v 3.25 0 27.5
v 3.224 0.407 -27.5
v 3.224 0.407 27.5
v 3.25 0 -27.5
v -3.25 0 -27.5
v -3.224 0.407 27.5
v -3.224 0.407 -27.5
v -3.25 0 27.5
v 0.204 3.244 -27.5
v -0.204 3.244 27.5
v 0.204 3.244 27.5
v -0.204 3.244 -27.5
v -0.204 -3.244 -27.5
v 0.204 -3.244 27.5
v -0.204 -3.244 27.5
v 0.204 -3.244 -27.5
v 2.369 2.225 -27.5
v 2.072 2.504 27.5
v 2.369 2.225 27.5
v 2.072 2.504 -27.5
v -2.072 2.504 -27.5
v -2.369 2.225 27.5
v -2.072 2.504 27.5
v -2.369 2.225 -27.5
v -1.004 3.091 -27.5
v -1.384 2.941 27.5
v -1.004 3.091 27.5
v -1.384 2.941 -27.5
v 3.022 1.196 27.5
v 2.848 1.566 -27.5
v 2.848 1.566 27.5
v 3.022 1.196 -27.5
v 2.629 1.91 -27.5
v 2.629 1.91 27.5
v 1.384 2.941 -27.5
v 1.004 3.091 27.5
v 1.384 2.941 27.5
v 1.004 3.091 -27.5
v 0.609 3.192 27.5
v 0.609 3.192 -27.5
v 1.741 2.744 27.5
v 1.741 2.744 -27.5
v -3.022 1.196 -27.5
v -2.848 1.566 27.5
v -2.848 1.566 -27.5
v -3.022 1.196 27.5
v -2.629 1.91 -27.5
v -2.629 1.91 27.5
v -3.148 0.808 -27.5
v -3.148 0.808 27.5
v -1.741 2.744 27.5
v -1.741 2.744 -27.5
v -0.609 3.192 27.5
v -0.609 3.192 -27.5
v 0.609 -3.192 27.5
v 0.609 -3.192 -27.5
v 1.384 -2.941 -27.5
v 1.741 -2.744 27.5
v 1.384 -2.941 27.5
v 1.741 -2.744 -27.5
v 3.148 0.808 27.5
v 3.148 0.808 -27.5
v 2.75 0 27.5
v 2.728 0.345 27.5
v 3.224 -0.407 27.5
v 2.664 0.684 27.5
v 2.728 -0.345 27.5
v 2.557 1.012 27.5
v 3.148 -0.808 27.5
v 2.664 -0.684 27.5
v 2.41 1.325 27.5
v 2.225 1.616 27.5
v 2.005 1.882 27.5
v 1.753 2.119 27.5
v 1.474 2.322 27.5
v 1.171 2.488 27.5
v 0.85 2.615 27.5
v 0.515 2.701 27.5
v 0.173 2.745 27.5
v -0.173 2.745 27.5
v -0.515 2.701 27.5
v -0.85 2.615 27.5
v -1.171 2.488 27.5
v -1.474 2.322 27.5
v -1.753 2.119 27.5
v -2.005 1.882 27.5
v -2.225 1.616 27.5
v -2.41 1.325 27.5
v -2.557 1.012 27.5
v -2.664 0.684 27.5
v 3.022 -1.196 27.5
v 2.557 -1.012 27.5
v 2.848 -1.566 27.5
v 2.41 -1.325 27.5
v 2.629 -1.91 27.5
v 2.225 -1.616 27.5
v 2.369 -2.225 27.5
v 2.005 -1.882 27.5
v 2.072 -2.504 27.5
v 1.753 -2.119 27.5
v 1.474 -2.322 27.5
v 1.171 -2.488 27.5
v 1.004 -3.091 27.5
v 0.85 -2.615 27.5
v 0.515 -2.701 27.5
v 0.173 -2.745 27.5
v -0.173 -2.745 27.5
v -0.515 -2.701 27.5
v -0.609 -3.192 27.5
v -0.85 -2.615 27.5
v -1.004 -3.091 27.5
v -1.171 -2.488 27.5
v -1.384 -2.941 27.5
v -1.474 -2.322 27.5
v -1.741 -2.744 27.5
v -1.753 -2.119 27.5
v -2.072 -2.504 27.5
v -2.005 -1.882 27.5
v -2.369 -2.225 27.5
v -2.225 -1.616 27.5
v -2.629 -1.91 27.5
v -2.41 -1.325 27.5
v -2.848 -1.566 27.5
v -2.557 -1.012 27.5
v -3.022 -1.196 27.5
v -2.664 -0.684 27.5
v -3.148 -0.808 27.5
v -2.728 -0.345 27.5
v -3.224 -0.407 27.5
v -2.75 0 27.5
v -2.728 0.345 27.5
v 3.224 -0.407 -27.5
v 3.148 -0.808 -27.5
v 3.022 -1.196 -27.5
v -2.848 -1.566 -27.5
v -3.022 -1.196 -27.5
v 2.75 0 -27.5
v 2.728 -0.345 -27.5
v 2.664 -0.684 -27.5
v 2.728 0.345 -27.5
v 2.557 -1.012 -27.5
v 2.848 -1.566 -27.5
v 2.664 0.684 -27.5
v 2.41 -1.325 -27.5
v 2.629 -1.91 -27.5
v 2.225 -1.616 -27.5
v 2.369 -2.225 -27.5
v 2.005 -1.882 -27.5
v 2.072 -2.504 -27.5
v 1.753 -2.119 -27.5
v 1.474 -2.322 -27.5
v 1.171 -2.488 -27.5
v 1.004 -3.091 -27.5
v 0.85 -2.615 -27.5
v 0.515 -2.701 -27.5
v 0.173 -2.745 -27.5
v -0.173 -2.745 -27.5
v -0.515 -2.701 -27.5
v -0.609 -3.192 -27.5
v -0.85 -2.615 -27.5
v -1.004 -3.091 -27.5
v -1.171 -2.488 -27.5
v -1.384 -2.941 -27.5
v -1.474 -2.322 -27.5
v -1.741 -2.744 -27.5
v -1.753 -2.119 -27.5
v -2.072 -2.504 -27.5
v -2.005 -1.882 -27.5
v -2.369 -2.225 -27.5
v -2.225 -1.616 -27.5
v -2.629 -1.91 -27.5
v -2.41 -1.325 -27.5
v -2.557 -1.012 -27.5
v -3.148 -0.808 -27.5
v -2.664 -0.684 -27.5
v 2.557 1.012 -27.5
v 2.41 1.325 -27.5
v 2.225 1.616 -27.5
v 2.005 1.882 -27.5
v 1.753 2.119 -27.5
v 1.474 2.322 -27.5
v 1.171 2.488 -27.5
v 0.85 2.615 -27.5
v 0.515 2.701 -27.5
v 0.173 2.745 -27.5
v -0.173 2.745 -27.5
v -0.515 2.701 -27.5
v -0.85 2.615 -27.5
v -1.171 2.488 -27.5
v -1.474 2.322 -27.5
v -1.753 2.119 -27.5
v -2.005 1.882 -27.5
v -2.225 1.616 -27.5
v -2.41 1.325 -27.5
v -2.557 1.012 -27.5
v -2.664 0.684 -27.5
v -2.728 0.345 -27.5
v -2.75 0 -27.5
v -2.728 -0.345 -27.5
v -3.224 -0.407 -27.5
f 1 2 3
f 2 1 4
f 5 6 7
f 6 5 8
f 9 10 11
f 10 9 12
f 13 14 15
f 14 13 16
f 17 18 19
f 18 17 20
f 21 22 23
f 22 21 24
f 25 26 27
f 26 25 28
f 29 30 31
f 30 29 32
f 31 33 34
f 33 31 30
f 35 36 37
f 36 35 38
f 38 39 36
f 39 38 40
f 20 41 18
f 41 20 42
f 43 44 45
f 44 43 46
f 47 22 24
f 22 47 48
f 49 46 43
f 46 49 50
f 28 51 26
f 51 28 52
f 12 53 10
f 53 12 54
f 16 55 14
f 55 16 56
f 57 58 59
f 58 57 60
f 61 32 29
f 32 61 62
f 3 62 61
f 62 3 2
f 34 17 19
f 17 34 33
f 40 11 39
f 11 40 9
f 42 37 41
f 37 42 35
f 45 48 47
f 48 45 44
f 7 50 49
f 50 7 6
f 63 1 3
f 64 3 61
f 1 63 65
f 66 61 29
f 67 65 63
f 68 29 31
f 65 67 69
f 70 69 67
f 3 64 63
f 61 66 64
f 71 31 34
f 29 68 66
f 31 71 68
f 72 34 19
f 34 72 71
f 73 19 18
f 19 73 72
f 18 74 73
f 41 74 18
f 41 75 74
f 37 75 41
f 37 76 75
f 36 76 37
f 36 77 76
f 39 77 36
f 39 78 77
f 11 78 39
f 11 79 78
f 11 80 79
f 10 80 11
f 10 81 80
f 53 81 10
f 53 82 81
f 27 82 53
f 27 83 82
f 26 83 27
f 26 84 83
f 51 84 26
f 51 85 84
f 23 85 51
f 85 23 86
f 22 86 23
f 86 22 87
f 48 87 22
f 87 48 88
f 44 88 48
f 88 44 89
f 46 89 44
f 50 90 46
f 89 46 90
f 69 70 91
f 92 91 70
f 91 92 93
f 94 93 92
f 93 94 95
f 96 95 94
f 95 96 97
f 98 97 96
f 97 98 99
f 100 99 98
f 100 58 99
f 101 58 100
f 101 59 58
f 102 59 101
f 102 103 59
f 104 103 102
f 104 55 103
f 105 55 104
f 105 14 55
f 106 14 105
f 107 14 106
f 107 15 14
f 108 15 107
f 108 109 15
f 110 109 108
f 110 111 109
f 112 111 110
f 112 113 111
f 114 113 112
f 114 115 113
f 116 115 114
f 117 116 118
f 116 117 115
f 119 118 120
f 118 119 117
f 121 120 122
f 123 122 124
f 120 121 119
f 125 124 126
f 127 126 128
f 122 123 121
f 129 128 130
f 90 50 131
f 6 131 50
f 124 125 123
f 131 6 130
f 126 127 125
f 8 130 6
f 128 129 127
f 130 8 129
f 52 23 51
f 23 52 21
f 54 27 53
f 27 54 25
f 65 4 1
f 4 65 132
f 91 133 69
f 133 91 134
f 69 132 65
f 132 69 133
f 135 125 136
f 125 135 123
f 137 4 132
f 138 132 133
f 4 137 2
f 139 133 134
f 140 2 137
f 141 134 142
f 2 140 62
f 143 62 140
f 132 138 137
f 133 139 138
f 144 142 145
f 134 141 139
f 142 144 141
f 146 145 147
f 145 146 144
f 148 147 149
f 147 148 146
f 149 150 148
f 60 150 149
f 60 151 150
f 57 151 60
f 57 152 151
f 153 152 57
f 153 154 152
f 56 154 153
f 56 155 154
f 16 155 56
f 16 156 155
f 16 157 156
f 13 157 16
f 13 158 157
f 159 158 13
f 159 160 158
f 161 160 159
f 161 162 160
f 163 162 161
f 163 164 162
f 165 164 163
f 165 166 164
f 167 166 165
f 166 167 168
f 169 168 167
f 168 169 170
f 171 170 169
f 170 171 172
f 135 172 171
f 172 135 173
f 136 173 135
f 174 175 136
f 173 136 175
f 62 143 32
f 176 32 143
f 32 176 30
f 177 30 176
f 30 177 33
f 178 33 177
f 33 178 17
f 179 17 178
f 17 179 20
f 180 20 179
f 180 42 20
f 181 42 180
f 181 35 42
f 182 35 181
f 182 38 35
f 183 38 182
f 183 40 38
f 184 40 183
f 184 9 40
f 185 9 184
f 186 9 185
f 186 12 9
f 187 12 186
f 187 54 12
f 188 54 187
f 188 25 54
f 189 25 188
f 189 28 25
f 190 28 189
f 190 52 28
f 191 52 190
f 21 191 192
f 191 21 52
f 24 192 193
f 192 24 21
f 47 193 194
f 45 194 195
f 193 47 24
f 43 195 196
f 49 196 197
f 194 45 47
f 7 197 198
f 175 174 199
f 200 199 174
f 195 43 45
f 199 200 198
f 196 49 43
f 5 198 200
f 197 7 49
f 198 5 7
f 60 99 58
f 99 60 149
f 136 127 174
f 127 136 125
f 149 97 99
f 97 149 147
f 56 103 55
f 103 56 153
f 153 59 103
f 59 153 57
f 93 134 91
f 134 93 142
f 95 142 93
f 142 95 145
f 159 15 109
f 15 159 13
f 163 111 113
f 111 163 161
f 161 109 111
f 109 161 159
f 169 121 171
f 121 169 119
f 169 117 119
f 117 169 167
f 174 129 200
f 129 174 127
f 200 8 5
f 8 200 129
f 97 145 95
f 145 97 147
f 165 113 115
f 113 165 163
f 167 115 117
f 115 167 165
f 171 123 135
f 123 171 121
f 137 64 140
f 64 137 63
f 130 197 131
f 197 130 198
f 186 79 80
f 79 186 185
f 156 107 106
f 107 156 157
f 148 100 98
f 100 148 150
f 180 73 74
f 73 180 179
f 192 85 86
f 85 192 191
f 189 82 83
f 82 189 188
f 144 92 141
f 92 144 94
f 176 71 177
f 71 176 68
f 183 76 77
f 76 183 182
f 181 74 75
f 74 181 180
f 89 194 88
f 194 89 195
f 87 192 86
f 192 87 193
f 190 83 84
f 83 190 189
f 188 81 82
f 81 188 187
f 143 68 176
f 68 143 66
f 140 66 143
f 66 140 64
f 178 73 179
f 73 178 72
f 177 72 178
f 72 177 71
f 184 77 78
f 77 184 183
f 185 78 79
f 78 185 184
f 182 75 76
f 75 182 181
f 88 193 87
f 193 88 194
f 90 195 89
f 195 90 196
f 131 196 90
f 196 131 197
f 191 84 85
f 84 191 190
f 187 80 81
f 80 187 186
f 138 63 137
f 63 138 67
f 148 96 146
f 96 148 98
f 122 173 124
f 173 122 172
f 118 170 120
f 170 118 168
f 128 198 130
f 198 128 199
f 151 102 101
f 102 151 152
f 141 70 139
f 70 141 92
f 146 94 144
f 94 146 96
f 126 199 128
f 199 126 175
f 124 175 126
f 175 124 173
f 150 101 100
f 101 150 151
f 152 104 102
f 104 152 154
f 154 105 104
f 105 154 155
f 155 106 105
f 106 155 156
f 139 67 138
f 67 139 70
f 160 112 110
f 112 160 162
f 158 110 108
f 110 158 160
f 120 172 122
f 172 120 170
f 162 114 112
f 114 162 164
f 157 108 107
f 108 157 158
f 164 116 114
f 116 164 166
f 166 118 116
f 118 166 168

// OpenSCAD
$fn = 50;


difference() {
	union() {
		translate(v = [0, 0, -27.5000000000]) {
			cylinder(h = 55, r = 3.2500000000);
		}
	}
	union() {
		translate(v = [0, 0, -100.0000000000]) {
			cylinder(h = 200, r = 2.7500000000);
		}
	}
}
